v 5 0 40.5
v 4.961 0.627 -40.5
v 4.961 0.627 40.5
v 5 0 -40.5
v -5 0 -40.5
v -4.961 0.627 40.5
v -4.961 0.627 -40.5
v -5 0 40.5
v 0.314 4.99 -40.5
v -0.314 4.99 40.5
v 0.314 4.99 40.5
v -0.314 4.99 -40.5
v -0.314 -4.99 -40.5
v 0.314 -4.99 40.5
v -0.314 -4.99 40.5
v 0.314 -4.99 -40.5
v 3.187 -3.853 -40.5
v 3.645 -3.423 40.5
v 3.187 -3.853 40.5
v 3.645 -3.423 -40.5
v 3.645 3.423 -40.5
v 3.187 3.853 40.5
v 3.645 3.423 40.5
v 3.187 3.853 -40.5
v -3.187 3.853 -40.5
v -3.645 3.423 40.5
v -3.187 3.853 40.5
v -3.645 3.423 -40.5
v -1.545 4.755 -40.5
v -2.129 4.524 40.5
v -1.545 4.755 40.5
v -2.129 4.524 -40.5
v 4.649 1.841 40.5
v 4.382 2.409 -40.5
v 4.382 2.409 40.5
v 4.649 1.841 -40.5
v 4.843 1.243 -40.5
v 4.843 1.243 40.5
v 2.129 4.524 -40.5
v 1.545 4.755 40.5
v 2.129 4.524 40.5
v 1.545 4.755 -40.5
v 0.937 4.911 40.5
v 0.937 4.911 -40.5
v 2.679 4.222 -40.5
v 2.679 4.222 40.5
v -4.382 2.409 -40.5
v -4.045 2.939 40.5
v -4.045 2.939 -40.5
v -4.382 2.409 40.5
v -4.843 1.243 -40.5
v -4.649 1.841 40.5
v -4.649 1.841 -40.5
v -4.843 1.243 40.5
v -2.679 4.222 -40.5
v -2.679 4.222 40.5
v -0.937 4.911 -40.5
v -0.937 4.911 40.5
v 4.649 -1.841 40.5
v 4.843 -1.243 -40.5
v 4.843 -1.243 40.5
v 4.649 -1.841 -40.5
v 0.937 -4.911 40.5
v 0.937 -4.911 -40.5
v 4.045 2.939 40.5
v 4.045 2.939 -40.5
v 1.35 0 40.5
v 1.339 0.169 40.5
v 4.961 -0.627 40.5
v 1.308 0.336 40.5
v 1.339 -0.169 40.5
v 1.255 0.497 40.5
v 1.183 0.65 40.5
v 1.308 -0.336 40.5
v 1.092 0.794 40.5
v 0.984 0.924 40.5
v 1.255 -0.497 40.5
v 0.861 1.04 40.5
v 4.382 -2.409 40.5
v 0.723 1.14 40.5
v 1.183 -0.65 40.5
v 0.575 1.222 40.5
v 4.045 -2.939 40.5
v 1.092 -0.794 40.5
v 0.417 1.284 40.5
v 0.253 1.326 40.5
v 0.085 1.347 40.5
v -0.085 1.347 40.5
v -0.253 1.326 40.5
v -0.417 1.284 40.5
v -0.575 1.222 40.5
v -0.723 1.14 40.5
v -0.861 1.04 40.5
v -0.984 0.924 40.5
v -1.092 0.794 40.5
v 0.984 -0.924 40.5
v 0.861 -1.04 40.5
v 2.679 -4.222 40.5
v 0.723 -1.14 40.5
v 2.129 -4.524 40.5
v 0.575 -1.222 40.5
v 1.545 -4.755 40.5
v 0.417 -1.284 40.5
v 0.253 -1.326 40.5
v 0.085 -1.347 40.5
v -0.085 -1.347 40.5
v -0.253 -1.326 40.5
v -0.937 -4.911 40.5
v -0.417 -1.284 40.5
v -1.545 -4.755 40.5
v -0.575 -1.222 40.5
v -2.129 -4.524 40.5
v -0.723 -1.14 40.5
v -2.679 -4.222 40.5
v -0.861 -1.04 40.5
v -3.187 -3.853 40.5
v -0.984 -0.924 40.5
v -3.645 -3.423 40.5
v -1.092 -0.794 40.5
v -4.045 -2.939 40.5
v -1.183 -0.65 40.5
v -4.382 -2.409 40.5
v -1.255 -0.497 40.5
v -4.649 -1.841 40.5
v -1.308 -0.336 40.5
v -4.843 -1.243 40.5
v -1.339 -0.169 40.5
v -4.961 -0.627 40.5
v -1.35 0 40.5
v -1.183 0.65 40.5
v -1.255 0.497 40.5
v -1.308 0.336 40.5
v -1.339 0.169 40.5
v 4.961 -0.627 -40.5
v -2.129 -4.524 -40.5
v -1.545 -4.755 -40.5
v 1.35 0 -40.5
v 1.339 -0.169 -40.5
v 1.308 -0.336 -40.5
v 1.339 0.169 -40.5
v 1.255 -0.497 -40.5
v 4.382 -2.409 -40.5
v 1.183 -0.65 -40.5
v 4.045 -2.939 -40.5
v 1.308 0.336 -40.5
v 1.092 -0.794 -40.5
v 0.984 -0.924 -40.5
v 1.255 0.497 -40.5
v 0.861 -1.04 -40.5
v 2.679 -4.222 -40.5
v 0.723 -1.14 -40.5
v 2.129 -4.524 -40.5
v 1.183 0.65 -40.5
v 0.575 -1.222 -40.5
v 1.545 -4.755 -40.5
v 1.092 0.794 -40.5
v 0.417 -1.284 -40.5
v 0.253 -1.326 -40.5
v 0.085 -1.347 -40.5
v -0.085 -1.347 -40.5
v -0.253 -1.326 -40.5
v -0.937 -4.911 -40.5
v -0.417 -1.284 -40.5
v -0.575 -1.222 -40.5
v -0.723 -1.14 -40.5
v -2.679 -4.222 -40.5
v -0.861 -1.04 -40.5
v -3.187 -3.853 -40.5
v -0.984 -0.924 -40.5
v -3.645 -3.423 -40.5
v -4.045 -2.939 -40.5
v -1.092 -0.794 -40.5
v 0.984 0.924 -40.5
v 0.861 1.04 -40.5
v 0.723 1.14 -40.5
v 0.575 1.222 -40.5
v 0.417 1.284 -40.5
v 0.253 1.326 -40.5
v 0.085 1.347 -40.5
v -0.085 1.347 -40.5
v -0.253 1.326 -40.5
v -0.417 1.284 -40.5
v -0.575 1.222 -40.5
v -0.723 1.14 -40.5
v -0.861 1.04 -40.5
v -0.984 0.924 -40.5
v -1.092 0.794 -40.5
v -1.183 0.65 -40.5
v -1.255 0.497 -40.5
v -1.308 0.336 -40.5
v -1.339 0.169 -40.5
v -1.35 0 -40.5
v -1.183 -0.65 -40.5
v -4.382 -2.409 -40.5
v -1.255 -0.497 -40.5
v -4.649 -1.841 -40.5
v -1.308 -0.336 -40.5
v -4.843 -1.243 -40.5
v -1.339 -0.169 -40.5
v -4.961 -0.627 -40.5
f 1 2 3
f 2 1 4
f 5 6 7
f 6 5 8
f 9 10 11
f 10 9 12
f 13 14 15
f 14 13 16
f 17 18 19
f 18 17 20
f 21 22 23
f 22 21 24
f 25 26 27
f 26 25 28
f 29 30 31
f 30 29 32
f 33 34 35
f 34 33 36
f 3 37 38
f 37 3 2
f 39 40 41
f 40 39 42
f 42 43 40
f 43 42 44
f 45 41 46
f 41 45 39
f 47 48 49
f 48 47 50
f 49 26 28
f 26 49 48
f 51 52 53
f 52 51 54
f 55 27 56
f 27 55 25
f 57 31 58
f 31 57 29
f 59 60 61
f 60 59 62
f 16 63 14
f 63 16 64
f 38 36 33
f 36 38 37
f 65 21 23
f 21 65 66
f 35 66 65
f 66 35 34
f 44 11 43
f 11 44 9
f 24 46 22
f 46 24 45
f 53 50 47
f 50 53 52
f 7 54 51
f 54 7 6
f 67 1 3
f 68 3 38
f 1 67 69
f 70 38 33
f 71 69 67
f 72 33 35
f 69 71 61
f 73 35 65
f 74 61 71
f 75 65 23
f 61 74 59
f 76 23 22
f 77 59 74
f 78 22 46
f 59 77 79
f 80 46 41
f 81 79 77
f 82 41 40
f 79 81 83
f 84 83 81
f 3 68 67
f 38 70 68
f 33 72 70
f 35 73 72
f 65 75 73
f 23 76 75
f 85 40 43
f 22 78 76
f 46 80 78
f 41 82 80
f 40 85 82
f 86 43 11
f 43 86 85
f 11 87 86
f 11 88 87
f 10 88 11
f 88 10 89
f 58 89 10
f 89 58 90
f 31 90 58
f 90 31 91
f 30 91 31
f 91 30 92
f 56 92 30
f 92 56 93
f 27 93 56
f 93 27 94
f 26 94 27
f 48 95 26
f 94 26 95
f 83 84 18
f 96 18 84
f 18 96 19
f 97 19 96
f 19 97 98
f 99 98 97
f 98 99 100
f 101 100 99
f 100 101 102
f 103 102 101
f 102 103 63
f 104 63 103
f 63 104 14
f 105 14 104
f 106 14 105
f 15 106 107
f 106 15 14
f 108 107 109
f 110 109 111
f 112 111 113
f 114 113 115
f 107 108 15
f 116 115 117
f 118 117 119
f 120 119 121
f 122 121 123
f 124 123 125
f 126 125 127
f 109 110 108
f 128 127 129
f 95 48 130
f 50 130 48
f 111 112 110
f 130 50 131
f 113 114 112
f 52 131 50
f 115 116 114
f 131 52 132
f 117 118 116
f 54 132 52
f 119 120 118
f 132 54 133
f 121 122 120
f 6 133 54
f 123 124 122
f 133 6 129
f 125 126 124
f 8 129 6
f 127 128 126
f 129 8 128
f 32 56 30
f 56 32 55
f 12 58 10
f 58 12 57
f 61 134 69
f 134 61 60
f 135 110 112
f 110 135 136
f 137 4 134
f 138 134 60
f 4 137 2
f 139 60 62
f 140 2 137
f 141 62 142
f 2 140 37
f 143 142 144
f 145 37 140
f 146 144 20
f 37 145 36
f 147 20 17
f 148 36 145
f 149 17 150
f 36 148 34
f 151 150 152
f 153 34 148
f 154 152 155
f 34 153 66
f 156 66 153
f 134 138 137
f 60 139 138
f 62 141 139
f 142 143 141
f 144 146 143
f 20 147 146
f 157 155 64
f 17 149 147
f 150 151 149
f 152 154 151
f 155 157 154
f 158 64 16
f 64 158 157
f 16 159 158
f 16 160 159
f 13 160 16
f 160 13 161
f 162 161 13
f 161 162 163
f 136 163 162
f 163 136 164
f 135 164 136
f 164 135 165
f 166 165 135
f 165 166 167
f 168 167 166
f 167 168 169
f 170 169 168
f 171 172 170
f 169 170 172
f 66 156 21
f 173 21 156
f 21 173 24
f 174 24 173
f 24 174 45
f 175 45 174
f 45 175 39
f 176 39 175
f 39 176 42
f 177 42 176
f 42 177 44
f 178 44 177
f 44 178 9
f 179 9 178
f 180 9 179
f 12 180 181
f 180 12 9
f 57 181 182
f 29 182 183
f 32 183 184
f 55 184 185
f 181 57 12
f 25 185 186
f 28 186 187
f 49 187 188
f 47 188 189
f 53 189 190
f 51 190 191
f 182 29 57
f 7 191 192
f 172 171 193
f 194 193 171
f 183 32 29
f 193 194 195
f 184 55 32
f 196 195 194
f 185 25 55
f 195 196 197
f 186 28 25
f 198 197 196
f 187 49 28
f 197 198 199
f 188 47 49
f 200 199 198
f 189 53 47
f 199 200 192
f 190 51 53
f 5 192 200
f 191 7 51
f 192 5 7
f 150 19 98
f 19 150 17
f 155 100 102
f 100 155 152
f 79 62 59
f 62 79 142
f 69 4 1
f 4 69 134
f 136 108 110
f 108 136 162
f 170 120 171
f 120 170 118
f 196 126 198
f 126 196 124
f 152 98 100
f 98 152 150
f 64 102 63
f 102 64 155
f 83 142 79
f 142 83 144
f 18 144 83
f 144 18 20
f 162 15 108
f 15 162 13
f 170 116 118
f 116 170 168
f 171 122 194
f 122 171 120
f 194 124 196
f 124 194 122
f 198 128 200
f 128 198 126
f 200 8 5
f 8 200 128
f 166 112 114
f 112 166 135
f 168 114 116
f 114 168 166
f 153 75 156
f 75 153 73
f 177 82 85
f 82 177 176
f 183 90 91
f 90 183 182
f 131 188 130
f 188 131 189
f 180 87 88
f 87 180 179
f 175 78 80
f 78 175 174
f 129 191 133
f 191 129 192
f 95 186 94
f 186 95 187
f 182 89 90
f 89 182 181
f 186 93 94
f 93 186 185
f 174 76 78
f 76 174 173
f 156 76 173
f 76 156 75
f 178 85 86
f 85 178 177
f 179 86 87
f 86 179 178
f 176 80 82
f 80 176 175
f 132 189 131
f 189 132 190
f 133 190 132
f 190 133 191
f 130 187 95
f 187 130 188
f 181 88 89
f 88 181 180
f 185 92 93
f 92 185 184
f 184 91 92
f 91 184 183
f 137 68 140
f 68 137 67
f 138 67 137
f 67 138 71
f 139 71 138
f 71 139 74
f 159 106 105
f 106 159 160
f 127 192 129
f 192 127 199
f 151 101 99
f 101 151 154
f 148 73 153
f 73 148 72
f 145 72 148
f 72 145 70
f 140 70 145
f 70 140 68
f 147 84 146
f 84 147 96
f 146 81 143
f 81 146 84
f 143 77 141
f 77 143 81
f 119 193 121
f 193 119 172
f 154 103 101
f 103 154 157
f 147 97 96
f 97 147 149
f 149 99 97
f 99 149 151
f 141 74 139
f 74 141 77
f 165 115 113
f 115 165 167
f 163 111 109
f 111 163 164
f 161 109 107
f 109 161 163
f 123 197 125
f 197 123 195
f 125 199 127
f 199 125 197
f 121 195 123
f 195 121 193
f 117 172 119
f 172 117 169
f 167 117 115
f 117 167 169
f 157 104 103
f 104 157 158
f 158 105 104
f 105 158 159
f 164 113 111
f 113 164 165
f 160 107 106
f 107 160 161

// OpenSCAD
$fn = 50;


difference() {
	union() {
		translate(v = [0, 0, -40.5000000000]) {
			cylinder(h = 81, r = 5.0000000000);
		}
	}
	union() {
		translate(v = [0, 0, -100.0000000000]) {
			cylinder(h = 200, r = 1.3500000000);
		}
	}
}
